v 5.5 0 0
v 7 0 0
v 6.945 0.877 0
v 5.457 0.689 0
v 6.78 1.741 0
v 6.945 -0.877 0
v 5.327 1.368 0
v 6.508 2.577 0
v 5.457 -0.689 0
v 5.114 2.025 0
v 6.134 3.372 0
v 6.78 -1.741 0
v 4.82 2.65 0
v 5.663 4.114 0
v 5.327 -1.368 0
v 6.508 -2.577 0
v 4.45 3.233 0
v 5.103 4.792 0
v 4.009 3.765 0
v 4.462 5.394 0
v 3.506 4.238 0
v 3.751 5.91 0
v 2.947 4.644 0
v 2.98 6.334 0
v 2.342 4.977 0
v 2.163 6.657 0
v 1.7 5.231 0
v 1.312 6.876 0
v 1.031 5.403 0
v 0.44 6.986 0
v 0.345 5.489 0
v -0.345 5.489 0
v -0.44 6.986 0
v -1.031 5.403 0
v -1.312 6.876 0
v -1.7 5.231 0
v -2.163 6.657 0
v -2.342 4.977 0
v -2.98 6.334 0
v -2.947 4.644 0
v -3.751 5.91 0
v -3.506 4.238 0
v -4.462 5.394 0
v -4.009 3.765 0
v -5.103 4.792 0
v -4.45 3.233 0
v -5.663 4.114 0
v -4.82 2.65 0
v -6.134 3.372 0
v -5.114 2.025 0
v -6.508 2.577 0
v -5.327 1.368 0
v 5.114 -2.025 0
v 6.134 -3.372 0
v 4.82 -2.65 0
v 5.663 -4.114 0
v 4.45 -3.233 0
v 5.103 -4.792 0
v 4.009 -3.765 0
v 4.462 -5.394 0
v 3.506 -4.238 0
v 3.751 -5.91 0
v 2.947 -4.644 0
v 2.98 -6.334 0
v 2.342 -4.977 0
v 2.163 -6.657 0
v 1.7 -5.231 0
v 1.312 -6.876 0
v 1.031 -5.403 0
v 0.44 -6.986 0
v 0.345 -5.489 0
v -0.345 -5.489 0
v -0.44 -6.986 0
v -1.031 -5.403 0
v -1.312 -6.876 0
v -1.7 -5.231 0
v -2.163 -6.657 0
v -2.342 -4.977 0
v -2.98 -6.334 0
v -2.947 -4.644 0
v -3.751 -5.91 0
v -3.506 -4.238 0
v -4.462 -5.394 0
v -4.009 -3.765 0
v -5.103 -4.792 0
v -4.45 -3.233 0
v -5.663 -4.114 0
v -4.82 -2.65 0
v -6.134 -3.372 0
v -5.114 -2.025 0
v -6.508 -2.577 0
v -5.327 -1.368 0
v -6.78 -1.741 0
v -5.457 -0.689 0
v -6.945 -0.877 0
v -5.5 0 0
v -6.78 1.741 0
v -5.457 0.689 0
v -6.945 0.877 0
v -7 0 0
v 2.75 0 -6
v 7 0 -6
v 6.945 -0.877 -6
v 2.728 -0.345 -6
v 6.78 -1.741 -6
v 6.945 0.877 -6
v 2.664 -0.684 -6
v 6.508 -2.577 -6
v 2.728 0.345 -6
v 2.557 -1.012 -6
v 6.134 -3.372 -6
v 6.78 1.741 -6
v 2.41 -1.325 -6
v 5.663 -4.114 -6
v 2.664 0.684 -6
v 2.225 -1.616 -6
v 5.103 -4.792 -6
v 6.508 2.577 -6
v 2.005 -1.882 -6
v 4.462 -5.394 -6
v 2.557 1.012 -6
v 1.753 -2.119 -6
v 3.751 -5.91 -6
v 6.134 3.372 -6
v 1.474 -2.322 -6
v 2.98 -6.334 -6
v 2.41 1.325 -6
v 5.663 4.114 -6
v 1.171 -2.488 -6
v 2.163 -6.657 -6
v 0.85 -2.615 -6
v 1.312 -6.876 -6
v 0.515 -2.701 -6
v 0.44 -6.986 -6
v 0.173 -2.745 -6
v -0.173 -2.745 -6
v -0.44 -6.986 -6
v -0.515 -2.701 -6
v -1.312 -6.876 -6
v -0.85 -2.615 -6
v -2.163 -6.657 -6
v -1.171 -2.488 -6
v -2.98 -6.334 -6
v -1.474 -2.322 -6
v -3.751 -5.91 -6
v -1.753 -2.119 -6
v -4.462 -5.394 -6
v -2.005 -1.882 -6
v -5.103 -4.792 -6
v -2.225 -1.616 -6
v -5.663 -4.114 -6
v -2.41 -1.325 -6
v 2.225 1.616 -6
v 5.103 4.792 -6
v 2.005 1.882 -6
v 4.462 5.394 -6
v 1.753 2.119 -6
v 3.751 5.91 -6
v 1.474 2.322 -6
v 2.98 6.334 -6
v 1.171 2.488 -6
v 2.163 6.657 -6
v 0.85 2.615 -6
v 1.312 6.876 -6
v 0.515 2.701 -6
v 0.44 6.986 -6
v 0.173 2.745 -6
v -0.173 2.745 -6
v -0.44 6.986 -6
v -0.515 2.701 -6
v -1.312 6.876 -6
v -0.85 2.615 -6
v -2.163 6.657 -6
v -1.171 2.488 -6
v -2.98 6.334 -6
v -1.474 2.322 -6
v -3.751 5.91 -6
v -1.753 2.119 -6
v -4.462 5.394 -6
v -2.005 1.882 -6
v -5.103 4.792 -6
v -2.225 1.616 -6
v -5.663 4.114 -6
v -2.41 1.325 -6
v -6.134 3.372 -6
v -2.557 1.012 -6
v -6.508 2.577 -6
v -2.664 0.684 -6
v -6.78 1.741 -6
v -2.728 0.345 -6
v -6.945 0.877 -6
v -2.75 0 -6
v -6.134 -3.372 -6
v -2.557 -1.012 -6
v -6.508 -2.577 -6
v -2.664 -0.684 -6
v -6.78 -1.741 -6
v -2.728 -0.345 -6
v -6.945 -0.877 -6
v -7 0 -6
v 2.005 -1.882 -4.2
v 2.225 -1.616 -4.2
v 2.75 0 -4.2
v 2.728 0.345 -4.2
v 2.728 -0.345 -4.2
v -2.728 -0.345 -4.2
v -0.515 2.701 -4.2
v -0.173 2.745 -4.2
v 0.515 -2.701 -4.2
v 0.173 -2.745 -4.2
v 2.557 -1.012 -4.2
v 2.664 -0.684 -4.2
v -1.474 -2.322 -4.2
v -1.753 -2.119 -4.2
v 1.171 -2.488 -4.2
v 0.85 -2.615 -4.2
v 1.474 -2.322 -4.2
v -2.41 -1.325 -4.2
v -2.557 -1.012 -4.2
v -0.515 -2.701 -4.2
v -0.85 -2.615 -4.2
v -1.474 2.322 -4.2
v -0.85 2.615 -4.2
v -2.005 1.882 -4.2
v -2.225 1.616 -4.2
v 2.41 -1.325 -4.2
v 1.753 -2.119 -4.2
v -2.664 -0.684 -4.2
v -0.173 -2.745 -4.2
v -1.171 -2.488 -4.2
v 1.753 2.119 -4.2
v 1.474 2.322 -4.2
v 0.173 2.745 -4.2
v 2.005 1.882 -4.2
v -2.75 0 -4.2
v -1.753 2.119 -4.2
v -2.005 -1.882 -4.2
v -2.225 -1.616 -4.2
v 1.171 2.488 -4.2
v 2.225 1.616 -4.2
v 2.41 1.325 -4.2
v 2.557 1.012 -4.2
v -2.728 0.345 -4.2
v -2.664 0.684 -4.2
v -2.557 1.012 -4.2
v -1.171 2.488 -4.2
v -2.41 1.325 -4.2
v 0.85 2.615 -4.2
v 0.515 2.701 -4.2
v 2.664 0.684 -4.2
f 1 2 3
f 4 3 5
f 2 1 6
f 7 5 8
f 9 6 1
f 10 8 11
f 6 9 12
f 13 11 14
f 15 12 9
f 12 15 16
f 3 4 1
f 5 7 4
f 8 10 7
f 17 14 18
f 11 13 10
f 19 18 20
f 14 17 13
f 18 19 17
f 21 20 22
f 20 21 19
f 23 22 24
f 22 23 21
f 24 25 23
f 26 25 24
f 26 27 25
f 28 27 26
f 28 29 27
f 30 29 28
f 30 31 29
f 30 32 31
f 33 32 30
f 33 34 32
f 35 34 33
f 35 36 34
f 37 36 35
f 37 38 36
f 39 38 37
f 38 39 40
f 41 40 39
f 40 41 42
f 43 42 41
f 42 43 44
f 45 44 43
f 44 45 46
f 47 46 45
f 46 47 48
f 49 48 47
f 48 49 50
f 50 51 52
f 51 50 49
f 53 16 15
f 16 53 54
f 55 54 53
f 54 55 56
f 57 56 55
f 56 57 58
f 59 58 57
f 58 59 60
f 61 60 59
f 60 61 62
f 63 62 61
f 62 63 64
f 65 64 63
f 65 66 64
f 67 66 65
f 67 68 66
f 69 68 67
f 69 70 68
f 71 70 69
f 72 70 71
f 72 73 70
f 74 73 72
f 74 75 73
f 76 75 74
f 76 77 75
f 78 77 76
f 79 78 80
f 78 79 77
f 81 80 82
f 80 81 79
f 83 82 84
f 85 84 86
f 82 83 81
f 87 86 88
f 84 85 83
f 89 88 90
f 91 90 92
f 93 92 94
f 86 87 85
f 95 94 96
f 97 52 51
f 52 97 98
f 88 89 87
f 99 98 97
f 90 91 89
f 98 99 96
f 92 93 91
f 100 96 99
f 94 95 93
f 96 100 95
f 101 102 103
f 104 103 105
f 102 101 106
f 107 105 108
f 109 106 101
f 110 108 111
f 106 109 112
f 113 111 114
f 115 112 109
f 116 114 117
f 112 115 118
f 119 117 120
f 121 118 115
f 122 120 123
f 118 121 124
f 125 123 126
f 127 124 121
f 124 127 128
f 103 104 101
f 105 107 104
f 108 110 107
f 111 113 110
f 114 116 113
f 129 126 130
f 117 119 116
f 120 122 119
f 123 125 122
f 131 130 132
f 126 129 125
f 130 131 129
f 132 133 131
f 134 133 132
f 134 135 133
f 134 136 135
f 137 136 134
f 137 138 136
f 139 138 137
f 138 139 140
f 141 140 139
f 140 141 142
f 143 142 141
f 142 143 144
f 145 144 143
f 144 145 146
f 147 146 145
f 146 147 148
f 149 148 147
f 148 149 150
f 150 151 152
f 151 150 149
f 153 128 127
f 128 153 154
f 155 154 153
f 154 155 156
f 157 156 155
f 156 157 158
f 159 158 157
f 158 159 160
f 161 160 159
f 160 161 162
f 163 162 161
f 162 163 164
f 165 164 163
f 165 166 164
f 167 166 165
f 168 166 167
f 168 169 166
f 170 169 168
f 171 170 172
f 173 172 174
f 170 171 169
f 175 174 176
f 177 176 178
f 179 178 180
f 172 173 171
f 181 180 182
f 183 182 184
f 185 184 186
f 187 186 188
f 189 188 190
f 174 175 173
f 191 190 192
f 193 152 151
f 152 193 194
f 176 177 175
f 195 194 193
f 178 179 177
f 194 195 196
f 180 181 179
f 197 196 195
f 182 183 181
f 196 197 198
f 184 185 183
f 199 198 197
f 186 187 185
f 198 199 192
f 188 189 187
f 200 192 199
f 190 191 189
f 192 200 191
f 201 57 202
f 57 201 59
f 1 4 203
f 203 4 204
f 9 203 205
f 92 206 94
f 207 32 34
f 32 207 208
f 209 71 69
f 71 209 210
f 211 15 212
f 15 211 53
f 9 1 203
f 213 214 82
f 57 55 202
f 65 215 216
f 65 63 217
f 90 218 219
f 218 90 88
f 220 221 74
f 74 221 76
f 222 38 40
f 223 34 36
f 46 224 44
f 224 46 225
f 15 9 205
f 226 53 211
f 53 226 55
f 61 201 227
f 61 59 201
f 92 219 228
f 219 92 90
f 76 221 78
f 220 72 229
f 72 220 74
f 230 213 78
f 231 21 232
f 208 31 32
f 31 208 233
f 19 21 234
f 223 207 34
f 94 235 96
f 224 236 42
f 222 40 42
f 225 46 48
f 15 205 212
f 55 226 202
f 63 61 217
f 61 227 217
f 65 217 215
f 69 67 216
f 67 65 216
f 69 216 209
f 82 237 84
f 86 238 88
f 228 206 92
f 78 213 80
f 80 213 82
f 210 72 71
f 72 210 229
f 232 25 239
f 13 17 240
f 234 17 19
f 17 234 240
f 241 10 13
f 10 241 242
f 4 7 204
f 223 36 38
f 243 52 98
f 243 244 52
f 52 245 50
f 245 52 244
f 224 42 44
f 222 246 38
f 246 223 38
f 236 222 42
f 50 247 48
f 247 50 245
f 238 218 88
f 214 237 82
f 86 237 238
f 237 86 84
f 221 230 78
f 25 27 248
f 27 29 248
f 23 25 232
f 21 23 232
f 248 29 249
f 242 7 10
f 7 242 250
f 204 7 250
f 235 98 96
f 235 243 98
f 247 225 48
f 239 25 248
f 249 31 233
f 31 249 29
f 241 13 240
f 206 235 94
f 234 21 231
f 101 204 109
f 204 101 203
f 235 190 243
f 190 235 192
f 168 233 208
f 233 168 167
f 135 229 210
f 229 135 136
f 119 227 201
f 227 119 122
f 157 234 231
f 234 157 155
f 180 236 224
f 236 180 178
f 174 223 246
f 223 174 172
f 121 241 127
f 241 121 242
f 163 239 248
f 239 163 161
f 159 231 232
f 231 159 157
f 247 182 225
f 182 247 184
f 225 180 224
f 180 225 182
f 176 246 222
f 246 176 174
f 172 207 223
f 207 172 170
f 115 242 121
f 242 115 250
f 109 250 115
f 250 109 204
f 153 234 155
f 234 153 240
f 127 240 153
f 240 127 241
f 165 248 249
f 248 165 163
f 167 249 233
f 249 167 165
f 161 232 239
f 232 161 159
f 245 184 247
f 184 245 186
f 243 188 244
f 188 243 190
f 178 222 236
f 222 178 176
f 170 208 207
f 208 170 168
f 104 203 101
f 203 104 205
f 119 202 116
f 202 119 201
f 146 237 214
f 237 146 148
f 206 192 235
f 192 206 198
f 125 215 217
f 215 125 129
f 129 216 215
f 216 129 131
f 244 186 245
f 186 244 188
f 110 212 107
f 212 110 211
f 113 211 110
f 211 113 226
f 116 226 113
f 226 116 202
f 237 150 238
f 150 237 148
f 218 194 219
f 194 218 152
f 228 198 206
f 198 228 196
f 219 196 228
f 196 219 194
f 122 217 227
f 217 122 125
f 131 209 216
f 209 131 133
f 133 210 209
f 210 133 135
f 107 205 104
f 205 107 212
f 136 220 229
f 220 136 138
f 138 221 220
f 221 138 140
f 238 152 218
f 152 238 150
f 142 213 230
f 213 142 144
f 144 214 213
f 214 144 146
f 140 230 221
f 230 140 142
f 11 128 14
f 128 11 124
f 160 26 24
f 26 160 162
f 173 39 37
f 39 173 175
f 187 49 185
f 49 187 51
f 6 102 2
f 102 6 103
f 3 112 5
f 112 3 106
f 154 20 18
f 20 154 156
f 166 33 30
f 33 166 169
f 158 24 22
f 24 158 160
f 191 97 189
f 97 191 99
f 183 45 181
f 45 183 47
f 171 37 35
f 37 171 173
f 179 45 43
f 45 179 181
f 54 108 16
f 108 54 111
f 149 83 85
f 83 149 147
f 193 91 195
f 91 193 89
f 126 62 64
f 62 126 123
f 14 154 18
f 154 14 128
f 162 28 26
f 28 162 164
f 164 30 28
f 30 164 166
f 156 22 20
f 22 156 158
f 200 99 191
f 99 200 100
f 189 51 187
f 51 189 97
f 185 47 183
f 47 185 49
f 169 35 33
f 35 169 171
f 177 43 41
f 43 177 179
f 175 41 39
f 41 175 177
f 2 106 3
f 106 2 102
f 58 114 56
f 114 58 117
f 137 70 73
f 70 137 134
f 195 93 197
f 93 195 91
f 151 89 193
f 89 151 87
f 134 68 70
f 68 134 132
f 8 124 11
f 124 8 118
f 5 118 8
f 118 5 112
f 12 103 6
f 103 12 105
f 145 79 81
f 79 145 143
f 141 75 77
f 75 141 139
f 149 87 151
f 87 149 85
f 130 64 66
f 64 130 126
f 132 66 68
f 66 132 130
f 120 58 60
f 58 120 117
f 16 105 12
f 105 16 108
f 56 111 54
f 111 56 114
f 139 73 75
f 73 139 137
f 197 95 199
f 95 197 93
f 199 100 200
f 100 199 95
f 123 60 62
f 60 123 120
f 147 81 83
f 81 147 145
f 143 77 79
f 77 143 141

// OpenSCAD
$fn = 50;


difference() {
	union() {
		translate(v = [0, 0, -6.0000000000]) {
			cylinder(h = 6, r = 7.0000000000);
		}
		cylinder(h = 0, r = 16.0000000000);
	}
	union() {
		translate(v = [0, 0, 0]) {
			rotate(a = [0, 0, 0]) {
				difference() {
					union() {
						#translate(v = [0, 0, -6.0000000000]) {
							cylinder(h = 6, r = 2.2500000000);
						}
						#translate(v = [0, 0, -4.2000000000]) {
							cylinder(h = 4.2000000000, r = 7.0000000000, r1 = 2.7500000000, r2 = 5.5000000000);
						}
						#translate(v = [0, 0, -6.0000000000]) {
							cylinder(h = 6, r = 2.7500000000);
						}
						#translate(v = [0, 0, -6.0000000000]) {
							cylinder(h = 6, r = 2.2500000000);
						}
					}
					union();
				}
			}
		}
	}
}
